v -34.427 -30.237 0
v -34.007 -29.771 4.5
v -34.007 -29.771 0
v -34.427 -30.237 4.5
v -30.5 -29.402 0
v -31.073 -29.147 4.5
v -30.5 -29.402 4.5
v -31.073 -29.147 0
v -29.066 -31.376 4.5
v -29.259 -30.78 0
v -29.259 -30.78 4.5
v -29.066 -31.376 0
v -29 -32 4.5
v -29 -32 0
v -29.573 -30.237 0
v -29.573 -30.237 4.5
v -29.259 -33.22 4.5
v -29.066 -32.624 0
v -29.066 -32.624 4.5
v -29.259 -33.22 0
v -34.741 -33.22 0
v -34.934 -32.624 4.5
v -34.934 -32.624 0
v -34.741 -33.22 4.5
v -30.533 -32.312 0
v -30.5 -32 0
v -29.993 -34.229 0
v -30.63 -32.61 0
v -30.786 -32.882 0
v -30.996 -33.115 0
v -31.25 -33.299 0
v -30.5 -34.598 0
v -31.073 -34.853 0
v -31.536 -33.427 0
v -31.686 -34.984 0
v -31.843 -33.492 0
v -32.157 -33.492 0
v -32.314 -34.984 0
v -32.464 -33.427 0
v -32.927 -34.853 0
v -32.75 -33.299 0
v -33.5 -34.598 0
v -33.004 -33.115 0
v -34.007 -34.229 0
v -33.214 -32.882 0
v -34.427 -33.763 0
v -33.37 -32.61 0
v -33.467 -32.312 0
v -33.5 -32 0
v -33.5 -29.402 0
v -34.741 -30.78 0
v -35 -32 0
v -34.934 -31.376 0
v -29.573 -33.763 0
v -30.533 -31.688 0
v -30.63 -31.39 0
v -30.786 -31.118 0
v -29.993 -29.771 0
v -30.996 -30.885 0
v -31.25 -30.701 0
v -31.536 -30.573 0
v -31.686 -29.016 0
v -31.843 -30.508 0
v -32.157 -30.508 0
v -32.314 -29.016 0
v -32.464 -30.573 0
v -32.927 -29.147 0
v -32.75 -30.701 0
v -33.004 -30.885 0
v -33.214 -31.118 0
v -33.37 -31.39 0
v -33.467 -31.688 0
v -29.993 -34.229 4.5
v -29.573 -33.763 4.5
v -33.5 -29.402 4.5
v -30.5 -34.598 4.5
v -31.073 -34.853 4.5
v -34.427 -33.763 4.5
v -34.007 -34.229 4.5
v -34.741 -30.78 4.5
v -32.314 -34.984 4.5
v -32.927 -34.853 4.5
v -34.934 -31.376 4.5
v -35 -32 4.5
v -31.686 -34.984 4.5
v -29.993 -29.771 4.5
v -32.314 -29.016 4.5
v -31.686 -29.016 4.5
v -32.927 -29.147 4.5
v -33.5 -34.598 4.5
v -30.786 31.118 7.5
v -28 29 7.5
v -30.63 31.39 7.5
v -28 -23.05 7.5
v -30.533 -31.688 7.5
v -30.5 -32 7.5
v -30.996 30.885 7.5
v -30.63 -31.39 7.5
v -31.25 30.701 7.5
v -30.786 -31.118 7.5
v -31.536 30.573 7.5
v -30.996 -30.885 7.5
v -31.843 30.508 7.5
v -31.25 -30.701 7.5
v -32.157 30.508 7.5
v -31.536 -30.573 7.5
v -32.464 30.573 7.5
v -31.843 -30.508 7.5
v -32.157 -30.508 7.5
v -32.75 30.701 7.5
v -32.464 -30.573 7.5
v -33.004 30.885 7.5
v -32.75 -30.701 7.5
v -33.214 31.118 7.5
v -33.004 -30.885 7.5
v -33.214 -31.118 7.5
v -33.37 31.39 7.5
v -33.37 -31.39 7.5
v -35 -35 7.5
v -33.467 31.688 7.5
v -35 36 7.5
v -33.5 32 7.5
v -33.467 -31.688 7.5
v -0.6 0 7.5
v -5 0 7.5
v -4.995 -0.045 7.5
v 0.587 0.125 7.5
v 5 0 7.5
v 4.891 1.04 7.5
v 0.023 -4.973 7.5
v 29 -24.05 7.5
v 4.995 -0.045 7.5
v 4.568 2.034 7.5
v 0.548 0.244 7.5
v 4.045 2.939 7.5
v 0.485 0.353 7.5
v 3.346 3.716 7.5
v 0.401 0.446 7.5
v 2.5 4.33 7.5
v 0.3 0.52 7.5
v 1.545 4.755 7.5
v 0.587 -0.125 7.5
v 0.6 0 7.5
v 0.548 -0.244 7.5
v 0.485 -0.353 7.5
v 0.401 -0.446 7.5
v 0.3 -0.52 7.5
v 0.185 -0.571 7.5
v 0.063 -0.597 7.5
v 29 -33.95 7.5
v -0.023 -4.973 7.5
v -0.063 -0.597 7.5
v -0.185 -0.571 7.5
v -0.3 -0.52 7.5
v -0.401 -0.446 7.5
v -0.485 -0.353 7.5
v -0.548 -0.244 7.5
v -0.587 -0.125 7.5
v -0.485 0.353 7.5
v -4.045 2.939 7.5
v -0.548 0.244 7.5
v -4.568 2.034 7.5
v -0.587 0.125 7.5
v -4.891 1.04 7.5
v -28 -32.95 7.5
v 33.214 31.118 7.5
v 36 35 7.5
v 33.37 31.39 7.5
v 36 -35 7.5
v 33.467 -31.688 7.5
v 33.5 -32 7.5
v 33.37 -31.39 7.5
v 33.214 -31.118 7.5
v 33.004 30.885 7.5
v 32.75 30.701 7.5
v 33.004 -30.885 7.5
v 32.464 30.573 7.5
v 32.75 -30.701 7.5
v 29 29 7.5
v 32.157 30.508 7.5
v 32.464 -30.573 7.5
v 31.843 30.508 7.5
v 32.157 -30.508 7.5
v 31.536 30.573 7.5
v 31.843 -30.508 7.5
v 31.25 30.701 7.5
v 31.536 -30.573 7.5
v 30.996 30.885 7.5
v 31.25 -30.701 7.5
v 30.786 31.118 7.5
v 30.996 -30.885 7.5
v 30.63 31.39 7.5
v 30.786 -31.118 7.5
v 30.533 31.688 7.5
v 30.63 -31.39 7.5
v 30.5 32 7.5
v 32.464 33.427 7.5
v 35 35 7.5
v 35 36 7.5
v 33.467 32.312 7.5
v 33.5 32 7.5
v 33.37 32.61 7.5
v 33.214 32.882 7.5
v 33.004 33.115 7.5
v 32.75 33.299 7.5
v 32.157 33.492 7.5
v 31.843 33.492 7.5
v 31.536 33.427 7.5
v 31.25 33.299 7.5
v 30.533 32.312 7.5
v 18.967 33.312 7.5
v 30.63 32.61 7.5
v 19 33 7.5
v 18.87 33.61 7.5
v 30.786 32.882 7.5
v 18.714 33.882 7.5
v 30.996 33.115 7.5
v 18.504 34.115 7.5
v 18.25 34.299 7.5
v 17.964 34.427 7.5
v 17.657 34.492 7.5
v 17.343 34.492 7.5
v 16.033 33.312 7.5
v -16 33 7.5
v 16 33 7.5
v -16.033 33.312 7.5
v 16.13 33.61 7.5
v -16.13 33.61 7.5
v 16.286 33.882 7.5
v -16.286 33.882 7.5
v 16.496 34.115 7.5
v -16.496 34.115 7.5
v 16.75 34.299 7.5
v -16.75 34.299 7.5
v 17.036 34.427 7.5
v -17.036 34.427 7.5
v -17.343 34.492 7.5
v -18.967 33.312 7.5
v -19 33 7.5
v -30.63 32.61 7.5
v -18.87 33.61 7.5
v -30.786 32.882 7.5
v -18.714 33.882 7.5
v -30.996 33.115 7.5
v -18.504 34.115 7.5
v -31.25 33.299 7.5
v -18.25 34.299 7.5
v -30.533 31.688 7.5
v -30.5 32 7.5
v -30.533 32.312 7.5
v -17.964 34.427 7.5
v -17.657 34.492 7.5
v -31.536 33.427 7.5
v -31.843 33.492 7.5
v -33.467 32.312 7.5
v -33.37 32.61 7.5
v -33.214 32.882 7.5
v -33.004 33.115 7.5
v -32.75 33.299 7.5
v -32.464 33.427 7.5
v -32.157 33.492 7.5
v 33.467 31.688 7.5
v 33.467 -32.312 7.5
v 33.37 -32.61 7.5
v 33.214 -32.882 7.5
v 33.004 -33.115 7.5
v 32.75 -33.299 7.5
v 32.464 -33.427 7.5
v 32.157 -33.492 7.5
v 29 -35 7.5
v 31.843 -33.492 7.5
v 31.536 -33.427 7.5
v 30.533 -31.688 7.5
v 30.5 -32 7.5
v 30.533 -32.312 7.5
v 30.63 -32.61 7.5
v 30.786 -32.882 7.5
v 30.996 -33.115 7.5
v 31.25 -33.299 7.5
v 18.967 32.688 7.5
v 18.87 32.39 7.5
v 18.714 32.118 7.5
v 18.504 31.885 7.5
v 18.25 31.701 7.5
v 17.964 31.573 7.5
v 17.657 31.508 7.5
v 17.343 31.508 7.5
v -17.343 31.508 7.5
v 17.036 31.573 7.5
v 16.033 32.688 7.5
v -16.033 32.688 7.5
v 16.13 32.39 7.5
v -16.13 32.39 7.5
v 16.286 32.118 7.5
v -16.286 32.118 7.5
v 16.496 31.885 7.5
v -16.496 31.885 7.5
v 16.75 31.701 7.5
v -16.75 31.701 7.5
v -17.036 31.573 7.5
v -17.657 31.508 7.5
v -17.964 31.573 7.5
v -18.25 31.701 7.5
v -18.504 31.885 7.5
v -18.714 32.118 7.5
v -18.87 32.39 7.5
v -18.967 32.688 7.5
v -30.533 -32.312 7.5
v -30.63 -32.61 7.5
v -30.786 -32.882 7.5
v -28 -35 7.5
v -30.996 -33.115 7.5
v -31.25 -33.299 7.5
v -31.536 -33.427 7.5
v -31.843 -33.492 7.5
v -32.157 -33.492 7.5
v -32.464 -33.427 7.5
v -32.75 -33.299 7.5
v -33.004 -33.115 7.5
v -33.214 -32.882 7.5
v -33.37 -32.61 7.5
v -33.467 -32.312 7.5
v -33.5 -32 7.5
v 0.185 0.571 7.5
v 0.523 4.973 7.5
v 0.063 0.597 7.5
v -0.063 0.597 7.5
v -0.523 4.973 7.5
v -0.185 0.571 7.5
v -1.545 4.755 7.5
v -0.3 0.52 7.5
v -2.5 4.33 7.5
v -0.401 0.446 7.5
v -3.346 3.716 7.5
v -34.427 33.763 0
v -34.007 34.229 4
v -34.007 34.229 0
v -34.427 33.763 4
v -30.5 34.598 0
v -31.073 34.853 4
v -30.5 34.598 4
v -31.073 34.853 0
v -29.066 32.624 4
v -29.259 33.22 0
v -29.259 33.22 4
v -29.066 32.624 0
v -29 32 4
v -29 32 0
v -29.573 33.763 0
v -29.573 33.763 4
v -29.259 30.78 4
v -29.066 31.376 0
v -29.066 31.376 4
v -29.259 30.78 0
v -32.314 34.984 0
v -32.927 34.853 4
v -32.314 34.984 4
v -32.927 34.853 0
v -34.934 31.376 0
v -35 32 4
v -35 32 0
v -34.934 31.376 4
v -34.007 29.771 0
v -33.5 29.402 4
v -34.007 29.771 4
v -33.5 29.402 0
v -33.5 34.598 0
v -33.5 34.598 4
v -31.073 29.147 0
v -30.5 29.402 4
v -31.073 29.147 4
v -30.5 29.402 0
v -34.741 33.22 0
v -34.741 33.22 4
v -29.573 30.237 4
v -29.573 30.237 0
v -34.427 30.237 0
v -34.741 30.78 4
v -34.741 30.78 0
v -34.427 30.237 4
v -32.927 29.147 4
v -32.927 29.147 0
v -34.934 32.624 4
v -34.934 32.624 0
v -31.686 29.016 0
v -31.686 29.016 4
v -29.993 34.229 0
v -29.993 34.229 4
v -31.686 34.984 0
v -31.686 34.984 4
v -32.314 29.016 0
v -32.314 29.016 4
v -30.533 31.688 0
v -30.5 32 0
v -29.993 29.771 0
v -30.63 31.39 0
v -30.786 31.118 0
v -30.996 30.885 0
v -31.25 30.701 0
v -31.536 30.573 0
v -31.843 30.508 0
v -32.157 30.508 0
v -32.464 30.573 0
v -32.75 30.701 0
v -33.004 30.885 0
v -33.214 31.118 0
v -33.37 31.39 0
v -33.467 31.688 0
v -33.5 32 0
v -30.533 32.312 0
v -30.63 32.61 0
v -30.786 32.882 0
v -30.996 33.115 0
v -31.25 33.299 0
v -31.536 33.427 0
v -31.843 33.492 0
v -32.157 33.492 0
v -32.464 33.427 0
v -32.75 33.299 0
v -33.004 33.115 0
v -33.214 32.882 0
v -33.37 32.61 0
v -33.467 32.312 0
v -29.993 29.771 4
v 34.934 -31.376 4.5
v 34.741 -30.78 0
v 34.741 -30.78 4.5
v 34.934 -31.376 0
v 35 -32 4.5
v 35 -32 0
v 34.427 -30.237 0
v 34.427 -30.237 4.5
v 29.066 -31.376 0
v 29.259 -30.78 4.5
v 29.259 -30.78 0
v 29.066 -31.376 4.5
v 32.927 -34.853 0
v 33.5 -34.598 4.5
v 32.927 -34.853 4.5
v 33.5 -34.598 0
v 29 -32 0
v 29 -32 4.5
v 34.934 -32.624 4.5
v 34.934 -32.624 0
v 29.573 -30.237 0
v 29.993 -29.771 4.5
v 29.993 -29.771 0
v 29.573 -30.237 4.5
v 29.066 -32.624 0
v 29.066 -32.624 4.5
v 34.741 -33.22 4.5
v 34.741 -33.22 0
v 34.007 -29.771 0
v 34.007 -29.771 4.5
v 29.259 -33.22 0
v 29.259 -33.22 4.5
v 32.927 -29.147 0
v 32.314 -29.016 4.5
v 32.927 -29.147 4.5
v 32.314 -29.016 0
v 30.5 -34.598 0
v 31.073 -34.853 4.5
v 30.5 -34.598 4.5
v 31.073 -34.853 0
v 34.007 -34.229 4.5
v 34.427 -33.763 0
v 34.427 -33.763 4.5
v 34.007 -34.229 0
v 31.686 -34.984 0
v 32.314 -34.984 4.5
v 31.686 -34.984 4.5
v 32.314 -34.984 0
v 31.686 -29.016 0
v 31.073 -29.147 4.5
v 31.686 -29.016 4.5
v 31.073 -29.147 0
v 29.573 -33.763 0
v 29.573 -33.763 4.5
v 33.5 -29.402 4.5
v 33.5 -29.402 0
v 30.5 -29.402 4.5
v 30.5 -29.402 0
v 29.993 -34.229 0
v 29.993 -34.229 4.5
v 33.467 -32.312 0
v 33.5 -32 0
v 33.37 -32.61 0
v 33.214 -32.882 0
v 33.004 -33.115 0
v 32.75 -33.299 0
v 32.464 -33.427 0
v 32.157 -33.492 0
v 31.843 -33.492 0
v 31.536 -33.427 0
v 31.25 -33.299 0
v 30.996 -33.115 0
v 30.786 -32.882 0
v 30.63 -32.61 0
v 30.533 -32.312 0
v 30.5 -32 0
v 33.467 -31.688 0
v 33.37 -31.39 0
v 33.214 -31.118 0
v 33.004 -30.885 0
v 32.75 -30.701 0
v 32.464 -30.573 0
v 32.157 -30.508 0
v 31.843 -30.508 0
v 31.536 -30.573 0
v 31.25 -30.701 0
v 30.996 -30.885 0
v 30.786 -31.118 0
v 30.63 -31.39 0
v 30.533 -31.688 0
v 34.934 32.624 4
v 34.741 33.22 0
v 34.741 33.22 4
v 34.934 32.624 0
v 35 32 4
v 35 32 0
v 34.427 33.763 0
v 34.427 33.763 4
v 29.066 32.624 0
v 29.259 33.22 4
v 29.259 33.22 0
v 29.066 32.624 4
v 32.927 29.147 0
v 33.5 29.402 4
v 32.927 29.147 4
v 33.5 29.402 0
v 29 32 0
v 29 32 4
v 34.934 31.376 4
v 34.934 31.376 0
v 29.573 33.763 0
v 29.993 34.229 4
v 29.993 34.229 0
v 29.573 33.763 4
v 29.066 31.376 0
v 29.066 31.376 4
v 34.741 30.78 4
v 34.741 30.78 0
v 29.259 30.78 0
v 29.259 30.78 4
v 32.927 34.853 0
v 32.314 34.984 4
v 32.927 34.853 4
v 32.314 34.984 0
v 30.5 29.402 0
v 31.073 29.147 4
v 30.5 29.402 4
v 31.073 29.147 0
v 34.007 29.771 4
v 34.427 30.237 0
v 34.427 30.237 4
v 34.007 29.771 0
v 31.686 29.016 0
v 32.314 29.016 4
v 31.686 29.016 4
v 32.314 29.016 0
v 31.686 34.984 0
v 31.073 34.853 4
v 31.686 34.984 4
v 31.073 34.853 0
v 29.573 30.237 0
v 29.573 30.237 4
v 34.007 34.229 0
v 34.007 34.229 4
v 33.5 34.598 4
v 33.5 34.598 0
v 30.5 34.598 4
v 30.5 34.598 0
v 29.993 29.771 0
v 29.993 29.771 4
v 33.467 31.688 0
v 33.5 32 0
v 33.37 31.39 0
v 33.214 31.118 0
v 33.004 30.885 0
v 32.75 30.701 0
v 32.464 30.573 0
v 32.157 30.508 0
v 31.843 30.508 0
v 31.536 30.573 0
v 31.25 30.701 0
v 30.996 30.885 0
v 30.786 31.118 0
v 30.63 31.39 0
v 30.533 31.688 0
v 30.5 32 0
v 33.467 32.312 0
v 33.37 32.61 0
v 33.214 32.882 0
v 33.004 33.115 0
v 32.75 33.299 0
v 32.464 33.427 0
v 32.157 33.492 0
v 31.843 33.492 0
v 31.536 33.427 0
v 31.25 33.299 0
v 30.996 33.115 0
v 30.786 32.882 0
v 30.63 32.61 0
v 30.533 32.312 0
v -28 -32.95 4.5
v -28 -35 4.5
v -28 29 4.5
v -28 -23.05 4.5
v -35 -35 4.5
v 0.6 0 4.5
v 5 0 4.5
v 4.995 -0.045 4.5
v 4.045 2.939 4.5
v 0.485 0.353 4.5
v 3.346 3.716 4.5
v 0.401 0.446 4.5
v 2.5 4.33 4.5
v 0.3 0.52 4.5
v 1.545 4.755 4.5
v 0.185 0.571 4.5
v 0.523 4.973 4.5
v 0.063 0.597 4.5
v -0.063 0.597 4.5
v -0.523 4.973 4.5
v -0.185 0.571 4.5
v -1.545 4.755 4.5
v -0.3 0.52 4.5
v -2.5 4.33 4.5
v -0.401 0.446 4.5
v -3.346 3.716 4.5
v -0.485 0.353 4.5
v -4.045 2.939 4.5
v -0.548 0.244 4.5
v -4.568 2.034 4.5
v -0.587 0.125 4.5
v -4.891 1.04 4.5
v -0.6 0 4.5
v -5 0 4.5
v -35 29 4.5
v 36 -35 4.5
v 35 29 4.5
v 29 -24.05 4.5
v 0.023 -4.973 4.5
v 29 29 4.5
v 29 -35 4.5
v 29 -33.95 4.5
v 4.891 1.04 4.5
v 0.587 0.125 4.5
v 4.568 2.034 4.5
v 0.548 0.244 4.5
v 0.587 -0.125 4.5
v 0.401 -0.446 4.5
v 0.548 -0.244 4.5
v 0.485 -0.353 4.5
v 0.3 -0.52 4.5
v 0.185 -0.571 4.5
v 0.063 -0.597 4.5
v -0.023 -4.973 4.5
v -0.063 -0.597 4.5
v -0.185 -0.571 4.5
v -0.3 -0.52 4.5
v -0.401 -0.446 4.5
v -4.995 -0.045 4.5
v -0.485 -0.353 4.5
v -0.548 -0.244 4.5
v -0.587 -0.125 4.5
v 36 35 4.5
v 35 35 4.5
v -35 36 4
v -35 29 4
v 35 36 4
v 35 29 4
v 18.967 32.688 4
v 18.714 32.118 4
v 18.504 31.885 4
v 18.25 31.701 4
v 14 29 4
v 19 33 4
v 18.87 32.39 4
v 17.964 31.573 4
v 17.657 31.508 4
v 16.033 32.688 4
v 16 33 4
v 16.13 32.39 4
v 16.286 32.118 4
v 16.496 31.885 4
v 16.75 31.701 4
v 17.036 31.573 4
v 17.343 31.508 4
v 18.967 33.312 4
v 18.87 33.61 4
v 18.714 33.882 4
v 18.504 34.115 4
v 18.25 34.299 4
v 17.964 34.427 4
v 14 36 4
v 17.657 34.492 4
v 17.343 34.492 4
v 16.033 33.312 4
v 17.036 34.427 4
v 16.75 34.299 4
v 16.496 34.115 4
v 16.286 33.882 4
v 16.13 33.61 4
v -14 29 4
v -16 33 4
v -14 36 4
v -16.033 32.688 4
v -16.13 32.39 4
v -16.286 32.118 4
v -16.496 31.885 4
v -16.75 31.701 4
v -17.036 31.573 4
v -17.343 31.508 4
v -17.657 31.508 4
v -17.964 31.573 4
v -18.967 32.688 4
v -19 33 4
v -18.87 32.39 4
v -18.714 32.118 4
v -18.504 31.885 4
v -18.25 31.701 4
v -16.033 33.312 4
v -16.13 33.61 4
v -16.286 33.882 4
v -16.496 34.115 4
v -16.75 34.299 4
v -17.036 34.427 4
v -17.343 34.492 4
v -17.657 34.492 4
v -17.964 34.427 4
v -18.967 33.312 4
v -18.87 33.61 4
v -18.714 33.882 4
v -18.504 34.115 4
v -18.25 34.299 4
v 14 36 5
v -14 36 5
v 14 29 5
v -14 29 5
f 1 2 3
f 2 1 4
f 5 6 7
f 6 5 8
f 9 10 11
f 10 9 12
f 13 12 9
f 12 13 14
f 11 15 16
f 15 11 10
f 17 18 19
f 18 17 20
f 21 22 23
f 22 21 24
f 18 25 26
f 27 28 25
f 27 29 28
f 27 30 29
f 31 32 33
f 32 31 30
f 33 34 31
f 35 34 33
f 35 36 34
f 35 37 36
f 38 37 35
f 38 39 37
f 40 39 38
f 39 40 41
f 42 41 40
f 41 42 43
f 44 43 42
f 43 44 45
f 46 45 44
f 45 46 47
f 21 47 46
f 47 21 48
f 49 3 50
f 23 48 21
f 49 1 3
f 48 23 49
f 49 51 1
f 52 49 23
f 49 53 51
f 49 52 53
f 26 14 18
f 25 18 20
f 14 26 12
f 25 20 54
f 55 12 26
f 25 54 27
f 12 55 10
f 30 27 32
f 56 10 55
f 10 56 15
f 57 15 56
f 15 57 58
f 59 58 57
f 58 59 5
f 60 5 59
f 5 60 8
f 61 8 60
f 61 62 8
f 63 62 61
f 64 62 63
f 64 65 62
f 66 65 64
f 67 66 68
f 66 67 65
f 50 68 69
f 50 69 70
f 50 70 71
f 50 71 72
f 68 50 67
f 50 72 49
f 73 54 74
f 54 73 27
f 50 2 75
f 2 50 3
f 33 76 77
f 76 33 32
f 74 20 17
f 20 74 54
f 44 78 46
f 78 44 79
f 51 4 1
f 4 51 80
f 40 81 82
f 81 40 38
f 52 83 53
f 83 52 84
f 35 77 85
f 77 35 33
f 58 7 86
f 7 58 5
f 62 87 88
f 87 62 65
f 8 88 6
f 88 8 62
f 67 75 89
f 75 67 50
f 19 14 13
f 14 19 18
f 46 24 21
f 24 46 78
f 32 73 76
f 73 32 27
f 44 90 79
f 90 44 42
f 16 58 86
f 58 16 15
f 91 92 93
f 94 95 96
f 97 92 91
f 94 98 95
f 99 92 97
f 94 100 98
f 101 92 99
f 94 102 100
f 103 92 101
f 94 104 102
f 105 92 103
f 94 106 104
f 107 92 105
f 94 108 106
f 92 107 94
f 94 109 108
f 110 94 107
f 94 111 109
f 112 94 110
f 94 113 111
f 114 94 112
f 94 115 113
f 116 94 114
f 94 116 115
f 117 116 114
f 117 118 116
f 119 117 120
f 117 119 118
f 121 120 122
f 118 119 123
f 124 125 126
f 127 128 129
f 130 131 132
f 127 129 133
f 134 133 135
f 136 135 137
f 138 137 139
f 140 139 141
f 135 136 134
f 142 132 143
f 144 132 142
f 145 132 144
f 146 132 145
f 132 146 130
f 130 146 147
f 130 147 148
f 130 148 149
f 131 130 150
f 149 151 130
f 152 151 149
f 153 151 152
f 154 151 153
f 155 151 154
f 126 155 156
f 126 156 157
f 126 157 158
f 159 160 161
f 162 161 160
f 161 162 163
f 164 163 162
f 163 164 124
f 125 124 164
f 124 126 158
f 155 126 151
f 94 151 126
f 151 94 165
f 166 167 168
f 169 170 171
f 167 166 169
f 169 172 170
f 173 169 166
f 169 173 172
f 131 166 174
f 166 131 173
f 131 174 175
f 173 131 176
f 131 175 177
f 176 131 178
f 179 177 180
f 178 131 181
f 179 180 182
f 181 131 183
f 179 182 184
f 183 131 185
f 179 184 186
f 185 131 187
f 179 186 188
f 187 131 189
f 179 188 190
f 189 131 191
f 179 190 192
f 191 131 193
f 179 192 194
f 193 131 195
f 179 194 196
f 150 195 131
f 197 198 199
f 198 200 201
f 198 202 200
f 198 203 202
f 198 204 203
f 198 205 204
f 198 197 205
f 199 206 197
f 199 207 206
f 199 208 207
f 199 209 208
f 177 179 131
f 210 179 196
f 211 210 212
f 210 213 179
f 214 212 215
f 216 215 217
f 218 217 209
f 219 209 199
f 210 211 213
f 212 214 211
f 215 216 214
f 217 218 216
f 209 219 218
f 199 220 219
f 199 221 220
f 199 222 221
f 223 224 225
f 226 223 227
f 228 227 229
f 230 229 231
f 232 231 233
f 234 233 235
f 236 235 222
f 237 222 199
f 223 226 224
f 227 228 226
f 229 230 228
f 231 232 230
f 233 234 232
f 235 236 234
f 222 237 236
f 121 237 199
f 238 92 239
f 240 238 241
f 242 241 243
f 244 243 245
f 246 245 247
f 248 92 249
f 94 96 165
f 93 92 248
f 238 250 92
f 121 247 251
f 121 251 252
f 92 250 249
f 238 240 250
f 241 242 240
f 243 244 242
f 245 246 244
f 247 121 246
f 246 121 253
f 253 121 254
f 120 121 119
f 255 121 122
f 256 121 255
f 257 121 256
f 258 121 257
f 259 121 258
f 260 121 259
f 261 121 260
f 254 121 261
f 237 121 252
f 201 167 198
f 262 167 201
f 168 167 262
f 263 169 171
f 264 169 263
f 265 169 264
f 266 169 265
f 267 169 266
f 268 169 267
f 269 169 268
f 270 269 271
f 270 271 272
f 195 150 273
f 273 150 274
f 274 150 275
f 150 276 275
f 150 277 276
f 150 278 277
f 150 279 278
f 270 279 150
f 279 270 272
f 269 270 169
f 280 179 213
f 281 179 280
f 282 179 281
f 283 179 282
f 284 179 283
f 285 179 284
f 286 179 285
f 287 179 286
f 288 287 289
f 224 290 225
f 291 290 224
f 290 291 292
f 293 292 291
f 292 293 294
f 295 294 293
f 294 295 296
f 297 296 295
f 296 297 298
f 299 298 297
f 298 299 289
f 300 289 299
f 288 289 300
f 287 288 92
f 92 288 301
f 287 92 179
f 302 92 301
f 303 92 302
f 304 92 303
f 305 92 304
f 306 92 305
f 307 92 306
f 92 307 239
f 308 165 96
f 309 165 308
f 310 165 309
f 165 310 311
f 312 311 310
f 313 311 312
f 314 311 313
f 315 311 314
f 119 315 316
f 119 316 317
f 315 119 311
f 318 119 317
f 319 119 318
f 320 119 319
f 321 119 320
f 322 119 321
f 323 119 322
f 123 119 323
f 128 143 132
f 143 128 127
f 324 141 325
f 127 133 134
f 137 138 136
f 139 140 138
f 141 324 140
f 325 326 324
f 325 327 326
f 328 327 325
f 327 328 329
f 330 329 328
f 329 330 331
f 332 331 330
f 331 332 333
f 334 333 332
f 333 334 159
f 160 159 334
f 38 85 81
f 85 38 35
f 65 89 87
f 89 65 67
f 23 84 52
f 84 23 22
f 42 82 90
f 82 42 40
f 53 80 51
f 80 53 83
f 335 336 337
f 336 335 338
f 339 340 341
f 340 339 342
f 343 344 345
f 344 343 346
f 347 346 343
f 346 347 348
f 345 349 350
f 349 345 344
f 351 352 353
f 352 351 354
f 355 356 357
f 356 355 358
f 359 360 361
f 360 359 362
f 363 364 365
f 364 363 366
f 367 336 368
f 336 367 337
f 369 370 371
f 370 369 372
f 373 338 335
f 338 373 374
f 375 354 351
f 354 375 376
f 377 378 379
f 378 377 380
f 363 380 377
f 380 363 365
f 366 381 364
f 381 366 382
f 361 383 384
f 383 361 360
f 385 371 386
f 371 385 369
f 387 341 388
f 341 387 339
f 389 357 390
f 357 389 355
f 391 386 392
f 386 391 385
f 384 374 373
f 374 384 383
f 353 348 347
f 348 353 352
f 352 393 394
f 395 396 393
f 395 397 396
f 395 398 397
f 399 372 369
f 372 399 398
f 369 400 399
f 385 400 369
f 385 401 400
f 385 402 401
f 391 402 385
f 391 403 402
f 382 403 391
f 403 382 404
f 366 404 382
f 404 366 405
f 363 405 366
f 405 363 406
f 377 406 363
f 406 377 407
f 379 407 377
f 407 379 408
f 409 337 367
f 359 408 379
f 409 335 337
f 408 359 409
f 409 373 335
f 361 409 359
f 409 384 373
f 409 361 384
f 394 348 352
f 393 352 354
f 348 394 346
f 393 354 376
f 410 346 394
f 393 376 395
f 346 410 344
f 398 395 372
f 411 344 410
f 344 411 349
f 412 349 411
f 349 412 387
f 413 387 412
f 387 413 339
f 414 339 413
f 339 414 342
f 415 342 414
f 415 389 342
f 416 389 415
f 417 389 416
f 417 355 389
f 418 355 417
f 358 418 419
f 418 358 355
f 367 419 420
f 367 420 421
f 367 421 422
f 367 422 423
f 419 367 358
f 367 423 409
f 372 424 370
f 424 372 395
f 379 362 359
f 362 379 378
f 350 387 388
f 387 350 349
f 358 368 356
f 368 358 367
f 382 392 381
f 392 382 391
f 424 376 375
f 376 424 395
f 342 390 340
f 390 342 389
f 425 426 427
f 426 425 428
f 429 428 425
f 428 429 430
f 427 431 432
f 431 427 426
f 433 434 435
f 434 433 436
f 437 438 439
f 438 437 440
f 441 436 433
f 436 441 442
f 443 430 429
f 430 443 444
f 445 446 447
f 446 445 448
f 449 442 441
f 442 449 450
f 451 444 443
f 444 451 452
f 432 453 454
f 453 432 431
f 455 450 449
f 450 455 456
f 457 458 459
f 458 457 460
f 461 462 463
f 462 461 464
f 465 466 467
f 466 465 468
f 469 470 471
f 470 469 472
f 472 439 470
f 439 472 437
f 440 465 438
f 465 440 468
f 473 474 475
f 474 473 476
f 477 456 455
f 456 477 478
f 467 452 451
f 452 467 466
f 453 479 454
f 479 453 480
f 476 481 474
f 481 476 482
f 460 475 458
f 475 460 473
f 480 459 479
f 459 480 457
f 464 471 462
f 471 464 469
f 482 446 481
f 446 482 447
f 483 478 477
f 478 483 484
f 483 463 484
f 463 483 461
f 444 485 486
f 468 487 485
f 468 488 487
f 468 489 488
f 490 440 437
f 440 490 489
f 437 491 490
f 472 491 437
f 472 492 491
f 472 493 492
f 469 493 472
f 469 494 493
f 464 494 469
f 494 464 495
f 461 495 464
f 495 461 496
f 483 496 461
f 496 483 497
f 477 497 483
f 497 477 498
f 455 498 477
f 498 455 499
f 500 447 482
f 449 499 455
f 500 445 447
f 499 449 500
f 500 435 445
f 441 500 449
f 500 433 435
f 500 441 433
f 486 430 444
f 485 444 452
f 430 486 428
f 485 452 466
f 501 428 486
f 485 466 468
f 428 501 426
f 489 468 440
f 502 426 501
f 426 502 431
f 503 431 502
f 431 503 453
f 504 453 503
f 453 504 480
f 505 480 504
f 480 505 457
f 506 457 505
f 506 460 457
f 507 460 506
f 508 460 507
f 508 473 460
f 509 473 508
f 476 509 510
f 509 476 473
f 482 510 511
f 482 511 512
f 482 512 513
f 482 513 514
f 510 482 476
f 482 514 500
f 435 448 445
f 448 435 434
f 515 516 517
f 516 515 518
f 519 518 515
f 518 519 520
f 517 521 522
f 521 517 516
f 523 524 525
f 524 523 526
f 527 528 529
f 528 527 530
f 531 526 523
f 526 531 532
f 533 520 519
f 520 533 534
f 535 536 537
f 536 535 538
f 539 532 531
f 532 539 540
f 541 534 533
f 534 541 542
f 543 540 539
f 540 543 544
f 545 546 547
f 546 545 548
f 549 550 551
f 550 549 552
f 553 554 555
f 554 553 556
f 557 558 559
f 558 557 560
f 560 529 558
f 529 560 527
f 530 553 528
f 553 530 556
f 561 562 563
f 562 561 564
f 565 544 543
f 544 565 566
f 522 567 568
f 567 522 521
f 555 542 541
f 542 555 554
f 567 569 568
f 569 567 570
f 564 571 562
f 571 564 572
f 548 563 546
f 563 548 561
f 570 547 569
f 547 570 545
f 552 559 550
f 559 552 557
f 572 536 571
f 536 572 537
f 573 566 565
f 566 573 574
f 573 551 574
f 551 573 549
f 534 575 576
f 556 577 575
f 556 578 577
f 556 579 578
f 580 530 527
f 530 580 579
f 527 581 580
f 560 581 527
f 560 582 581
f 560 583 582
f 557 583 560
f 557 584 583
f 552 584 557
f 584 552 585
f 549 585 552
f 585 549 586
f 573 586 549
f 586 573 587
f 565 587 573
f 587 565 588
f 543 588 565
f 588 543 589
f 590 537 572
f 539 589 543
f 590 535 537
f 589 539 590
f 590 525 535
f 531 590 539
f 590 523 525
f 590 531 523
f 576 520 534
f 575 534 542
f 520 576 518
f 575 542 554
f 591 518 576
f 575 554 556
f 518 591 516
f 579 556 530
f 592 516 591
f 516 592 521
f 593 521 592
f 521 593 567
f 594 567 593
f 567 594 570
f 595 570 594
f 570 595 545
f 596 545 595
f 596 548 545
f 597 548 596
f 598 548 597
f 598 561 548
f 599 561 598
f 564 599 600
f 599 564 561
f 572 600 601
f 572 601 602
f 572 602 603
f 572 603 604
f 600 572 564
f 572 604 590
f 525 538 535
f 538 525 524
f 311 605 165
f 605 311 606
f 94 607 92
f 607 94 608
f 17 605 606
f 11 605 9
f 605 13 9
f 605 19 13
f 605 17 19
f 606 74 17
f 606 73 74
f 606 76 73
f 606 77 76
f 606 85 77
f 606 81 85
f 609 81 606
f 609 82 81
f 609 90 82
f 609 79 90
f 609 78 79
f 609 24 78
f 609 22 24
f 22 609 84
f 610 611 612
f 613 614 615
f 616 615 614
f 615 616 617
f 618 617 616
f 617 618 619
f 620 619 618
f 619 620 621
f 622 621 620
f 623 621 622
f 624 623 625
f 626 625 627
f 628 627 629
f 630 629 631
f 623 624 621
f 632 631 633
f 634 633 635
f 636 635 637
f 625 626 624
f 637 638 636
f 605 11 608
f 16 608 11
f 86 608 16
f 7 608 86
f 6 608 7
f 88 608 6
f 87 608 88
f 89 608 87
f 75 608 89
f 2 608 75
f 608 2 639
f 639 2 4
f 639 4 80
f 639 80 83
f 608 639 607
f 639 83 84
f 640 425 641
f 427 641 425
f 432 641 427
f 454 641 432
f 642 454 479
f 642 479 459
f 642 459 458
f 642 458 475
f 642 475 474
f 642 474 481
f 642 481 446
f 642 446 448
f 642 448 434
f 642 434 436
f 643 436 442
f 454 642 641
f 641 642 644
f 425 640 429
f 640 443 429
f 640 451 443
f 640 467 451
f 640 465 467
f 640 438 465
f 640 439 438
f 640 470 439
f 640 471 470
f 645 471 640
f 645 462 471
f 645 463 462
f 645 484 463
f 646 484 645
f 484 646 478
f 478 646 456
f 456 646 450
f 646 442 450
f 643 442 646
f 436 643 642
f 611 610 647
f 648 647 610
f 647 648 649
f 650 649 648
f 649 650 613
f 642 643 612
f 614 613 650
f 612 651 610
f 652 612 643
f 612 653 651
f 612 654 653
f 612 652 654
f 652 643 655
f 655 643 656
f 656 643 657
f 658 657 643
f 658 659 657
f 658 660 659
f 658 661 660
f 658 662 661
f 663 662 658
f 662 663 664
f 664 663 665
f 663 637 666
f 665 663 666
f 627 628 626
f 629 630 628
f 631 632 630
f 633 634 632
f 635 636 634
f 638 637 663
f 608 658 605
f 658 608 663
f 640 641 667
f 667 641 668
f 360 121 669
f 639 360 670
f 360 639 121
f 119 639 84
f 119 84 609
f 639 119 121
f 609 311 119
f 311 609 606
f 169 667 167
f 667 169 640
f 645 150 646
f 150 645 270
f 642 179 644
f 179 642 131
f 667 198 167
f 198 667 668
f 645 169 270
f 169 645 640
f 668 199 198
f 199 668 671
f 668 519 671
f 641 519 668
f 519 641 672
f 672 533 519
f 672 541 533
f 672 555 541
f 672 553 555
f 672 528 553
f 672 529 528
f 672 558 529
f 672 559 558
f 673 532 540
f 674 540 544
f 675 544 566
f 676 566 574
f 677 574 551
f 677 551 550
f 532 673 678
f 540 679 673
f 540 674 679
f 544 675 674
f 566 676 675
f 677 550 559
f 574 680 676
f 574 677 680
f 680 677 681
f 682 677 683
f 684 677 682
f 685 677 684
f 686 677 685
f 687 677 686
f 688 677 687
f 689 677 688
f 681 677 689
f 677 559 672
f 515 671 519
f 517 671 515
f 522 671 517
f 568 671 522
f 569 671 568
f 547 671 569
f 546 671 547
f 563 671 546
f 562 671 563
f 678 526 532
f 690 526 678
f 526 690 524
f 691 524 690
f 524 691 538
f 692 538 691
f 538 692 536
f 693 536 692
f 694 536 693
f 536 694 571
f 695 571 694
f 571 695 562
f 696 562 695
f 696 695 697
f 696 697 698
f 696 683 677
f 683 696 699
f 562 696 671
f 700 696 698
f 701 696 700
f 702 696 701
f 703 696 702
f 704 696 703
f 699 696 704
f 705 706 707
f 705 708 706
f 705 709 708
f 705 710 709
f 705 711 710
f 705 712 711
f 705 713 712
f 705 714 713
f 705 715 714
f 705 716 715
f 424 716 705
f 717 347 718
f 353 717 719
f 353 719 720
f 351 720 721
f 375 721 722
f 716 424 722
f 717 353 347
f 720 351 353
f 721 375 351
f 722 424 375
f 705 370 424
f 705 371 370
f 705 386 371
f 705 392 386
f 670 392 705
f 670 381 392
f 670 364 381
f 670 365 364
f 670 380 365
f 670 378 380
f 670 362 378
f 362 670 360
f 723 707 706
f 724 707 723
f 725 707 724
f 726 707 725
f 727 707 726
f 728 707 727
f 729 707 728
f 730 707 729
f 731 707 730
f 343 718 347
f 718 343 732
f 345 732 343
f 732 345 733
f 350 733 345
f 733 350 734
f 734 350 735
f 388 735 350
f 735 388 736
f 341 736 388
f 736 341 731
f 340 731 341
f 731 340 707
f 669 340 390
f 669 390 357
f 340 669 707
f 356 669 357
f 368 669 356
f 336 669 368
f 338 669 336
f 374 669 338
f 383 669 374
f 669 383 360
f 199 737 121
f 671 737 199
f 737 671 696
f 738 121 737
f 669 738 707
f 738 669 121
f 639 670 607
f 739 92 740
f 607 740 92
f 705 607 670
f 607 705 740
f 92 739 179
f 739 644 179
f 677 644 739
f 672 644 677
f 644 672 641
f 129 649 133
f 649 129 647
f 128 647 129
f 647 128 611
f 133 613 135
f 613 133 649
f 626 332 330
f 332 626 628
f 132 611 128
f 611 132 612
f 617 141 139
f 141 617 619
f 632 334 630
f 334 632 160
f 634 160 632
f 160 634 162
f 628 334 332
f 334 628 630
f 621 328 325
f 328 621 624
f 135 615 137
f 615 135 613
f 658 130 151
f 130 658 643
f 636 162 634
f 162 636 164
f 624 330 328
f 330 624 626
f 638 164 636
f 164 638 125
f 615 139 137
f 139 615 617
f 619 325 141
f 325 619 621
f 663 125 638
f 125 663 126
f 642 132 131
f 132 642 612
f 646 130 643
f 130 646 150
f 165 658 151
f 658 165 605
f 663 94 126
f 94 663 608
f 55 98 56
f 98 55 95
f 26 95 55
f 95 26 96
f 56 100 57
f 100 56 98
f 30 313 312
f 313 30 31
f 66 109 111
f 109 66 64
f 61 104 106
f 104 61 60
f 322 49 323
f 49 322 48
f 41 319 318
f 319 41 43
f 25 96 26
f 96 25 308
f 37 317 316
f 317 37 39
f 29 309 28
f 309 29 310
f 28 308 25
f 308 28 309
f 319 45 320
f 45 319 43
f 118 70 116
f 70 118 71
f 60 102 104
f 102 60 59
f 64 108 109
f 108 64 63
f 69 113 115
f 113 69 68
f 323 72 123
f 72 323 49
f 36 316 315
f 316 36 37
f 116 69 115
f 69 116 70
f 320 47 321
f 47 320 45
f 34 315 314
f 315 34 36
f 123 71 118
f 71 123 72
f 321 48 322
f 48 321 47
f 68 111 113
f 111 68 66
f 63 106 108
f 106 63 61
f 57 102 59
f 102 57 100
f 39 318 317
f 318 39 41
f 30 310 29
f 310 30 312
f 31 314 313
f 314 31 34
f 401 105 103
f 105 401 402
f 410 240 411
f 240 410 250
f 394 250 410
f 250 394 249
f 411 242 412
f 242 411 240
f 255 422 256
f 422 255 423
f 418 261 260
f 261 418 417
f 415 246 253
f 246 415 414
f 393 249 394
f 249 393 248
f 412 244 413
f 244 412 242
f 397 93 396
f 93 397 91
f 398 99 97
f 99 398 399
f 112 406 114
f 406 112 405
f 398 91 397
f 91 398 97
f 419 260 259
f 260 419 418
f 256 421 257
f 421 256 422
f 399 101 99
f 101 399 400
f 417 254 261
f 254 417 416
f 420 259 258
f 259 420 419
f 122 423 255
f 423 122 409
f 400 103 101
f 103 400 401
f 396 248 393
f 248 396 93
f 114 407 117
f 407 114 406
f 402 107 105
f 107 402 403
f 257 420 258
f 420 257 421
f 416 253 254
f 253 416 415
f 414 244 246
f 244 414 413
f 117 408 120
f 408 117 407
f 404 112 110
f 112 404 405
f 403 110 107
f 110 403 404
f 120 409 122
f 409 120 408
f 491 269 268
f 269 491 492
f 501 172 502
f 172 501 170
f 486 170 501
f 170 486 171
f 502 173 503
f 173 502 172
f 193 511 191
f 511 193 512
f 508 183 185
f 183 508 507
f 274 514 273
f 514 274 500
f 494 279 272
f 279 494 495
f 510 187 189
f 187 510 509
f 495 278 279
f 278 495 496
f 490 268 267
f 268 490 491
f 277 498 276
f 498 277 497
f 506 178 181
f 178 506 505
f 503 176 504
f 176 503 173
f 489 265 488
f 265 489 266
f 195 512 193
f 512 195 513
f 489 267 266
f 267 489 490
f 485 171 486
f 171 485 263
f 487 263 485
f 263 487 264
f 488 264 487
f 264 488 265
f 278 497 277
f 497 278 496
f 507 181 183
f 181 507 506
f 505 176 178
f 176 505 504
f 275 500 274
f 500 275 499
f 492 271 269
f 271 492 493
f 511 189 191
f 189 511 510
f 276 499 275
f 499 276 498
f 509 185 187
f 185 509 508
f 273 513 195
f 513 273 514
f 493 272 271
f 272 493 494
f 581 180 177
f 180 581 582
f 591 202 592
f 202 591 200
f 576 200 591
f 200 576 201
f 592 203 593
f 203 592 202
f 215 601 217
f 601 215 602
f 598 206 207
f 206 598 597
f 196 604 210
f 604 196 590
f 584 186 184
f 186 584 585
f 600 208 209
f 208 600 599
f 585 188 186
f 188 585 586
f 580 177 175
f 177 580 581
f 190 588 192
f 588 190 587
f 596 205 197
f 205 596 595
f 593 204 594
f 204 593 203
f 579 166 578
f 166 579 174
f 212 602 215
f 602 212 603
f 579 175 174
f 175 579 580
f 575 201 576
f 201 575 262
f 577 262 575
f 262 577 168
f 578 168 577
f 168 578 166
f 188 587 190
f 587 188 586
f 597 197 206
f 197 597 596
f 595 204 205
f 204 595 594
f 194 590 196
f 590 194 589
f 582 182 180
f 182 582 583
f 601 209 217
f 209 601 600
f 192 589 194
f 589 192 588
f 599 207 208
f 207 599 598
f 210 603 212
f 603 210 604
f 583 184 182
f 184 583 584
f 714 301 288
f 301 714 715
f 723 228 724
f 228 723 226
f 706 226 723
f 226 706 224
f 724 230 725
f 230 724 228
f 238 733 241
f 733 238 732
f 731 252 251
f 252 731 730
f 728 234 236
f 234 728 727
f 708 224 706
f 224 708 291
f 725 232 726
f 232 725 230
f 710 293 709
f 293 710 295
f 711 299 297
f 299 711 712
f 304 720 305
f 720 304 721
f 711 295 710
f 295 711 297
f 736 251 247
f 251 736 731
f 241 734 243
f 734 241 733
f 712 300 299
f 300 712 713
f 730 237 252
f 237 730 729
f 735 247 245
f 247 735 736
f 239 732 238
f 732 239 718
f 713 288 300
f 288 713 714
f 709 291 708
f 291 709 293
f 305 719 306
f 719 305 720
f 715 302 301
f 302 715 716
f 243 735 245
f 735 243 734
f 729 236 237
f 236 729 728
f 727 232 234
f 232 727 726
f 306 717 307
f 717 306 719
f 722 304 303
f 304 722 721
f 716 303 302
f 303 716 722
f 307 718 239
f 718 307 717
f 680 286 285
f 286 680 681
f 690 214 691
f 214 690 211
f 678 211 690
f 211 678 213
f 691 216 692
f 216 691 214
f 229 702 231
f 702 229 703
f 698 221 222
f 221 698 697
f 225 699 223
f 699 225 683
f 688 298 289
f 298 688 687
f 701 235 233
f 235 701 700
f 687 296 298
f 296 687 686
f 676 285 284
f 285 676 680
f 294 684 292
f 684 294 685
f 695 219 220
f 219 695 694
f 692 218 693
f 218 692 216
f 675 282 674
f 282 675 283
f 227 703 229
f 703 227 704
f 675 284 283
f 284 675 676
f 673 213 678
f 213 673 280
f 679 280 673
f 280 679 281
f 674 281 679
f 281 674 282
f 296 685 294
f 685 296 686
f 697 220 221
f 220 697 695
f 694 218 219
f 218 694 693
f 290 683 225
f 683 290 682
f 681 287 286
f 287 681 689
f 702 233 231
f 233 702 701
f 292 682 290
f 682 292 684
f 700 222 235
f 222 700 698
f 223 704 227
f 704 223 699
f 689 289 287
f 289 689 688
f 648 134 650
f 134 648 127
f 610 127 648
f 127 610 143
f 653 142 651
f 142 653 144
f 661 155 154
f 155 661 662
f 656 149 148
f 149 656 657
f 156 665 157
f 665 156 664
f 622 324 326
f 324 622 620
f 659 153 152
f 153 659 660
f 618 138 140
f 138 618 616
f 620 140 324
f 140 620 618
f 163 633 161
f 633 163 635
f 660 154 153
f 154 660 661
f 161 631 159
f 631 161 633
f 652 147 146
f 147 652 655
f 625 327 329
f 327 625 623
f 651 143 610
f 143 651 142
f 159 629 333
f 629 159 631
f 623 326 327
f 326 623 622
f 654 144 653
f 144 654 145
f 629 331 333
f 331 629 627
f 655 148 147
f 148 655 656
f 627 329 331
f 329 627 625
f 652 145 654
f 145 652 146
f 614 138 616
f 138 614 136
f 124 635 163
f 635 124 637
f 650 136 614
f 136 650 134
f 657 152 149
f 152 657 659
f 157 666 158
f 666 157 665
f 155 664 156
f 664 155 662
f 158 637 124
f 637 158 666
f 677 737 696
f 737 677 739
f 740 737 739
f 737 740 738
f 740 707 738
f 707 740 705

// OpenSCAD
$fn=30;

screw_offset=32;
stepper_screw_offset=35/2;
difference() {
    union() {
        // four main pillars
        for (i = [-screw_offset:2*screw_offset:screw_offset]) {

            for (j = [-screw_offset:2*screw_offset:screw_offset]) {
                translate([i, j, 0]) {
                    cylinder(d=6,h=7.5);
                }
            }
        }
        // stepper mounting bracket
        translate([0,screw_offset + .5,4+(3.5/2)])
            cube([2*screw_offset + 6, 7, 3.5],center=true);
        
        for (i = [-screw_offset:2*screw_offset:screw_offset]) {
            translate([i + .5,0,6])
                cube([7, 2*screw_offset + 6, 3],center=true);
        }
        
        translate([0, 0 ,4.5])
            cylinder(d=10,h=3);
        
        rotate([0,0,45])
            translate([0,-23, 6])
            cube([7, sqrt(2) * screw_offset, 3],center=true);
        
        rotate([0,0,-45])
            translate([0,-23, 6])
            cube([7, sqrt(2) * screw_offset, 3],center=true);
    }

    for (i = [-screw_offset:2*screw_offset:screw_offset]) {
        for (j = [-screw_offset:2*screw_offset:screw_offset]) {
            translate([i, j, 0])
                cylinder(d=3,h=8);
        }
    }
    
    // center hole for connecting other gears
    // 100 ft has a diameter of 1mm -> 1.2mm
    cylinder(d=1.2, h=10);
    
    // additional space for gear
    translate([0,screw_offset,4])
        cube([28,8,2],center=true);
    
    for (i = [-stepper_screw_offset:2*stepper_screw_offset:stepper_screw_offset]) {
        translate([i, screw_offset + 1, 0])
            cylinder(d=3,h=8);
    }
}
